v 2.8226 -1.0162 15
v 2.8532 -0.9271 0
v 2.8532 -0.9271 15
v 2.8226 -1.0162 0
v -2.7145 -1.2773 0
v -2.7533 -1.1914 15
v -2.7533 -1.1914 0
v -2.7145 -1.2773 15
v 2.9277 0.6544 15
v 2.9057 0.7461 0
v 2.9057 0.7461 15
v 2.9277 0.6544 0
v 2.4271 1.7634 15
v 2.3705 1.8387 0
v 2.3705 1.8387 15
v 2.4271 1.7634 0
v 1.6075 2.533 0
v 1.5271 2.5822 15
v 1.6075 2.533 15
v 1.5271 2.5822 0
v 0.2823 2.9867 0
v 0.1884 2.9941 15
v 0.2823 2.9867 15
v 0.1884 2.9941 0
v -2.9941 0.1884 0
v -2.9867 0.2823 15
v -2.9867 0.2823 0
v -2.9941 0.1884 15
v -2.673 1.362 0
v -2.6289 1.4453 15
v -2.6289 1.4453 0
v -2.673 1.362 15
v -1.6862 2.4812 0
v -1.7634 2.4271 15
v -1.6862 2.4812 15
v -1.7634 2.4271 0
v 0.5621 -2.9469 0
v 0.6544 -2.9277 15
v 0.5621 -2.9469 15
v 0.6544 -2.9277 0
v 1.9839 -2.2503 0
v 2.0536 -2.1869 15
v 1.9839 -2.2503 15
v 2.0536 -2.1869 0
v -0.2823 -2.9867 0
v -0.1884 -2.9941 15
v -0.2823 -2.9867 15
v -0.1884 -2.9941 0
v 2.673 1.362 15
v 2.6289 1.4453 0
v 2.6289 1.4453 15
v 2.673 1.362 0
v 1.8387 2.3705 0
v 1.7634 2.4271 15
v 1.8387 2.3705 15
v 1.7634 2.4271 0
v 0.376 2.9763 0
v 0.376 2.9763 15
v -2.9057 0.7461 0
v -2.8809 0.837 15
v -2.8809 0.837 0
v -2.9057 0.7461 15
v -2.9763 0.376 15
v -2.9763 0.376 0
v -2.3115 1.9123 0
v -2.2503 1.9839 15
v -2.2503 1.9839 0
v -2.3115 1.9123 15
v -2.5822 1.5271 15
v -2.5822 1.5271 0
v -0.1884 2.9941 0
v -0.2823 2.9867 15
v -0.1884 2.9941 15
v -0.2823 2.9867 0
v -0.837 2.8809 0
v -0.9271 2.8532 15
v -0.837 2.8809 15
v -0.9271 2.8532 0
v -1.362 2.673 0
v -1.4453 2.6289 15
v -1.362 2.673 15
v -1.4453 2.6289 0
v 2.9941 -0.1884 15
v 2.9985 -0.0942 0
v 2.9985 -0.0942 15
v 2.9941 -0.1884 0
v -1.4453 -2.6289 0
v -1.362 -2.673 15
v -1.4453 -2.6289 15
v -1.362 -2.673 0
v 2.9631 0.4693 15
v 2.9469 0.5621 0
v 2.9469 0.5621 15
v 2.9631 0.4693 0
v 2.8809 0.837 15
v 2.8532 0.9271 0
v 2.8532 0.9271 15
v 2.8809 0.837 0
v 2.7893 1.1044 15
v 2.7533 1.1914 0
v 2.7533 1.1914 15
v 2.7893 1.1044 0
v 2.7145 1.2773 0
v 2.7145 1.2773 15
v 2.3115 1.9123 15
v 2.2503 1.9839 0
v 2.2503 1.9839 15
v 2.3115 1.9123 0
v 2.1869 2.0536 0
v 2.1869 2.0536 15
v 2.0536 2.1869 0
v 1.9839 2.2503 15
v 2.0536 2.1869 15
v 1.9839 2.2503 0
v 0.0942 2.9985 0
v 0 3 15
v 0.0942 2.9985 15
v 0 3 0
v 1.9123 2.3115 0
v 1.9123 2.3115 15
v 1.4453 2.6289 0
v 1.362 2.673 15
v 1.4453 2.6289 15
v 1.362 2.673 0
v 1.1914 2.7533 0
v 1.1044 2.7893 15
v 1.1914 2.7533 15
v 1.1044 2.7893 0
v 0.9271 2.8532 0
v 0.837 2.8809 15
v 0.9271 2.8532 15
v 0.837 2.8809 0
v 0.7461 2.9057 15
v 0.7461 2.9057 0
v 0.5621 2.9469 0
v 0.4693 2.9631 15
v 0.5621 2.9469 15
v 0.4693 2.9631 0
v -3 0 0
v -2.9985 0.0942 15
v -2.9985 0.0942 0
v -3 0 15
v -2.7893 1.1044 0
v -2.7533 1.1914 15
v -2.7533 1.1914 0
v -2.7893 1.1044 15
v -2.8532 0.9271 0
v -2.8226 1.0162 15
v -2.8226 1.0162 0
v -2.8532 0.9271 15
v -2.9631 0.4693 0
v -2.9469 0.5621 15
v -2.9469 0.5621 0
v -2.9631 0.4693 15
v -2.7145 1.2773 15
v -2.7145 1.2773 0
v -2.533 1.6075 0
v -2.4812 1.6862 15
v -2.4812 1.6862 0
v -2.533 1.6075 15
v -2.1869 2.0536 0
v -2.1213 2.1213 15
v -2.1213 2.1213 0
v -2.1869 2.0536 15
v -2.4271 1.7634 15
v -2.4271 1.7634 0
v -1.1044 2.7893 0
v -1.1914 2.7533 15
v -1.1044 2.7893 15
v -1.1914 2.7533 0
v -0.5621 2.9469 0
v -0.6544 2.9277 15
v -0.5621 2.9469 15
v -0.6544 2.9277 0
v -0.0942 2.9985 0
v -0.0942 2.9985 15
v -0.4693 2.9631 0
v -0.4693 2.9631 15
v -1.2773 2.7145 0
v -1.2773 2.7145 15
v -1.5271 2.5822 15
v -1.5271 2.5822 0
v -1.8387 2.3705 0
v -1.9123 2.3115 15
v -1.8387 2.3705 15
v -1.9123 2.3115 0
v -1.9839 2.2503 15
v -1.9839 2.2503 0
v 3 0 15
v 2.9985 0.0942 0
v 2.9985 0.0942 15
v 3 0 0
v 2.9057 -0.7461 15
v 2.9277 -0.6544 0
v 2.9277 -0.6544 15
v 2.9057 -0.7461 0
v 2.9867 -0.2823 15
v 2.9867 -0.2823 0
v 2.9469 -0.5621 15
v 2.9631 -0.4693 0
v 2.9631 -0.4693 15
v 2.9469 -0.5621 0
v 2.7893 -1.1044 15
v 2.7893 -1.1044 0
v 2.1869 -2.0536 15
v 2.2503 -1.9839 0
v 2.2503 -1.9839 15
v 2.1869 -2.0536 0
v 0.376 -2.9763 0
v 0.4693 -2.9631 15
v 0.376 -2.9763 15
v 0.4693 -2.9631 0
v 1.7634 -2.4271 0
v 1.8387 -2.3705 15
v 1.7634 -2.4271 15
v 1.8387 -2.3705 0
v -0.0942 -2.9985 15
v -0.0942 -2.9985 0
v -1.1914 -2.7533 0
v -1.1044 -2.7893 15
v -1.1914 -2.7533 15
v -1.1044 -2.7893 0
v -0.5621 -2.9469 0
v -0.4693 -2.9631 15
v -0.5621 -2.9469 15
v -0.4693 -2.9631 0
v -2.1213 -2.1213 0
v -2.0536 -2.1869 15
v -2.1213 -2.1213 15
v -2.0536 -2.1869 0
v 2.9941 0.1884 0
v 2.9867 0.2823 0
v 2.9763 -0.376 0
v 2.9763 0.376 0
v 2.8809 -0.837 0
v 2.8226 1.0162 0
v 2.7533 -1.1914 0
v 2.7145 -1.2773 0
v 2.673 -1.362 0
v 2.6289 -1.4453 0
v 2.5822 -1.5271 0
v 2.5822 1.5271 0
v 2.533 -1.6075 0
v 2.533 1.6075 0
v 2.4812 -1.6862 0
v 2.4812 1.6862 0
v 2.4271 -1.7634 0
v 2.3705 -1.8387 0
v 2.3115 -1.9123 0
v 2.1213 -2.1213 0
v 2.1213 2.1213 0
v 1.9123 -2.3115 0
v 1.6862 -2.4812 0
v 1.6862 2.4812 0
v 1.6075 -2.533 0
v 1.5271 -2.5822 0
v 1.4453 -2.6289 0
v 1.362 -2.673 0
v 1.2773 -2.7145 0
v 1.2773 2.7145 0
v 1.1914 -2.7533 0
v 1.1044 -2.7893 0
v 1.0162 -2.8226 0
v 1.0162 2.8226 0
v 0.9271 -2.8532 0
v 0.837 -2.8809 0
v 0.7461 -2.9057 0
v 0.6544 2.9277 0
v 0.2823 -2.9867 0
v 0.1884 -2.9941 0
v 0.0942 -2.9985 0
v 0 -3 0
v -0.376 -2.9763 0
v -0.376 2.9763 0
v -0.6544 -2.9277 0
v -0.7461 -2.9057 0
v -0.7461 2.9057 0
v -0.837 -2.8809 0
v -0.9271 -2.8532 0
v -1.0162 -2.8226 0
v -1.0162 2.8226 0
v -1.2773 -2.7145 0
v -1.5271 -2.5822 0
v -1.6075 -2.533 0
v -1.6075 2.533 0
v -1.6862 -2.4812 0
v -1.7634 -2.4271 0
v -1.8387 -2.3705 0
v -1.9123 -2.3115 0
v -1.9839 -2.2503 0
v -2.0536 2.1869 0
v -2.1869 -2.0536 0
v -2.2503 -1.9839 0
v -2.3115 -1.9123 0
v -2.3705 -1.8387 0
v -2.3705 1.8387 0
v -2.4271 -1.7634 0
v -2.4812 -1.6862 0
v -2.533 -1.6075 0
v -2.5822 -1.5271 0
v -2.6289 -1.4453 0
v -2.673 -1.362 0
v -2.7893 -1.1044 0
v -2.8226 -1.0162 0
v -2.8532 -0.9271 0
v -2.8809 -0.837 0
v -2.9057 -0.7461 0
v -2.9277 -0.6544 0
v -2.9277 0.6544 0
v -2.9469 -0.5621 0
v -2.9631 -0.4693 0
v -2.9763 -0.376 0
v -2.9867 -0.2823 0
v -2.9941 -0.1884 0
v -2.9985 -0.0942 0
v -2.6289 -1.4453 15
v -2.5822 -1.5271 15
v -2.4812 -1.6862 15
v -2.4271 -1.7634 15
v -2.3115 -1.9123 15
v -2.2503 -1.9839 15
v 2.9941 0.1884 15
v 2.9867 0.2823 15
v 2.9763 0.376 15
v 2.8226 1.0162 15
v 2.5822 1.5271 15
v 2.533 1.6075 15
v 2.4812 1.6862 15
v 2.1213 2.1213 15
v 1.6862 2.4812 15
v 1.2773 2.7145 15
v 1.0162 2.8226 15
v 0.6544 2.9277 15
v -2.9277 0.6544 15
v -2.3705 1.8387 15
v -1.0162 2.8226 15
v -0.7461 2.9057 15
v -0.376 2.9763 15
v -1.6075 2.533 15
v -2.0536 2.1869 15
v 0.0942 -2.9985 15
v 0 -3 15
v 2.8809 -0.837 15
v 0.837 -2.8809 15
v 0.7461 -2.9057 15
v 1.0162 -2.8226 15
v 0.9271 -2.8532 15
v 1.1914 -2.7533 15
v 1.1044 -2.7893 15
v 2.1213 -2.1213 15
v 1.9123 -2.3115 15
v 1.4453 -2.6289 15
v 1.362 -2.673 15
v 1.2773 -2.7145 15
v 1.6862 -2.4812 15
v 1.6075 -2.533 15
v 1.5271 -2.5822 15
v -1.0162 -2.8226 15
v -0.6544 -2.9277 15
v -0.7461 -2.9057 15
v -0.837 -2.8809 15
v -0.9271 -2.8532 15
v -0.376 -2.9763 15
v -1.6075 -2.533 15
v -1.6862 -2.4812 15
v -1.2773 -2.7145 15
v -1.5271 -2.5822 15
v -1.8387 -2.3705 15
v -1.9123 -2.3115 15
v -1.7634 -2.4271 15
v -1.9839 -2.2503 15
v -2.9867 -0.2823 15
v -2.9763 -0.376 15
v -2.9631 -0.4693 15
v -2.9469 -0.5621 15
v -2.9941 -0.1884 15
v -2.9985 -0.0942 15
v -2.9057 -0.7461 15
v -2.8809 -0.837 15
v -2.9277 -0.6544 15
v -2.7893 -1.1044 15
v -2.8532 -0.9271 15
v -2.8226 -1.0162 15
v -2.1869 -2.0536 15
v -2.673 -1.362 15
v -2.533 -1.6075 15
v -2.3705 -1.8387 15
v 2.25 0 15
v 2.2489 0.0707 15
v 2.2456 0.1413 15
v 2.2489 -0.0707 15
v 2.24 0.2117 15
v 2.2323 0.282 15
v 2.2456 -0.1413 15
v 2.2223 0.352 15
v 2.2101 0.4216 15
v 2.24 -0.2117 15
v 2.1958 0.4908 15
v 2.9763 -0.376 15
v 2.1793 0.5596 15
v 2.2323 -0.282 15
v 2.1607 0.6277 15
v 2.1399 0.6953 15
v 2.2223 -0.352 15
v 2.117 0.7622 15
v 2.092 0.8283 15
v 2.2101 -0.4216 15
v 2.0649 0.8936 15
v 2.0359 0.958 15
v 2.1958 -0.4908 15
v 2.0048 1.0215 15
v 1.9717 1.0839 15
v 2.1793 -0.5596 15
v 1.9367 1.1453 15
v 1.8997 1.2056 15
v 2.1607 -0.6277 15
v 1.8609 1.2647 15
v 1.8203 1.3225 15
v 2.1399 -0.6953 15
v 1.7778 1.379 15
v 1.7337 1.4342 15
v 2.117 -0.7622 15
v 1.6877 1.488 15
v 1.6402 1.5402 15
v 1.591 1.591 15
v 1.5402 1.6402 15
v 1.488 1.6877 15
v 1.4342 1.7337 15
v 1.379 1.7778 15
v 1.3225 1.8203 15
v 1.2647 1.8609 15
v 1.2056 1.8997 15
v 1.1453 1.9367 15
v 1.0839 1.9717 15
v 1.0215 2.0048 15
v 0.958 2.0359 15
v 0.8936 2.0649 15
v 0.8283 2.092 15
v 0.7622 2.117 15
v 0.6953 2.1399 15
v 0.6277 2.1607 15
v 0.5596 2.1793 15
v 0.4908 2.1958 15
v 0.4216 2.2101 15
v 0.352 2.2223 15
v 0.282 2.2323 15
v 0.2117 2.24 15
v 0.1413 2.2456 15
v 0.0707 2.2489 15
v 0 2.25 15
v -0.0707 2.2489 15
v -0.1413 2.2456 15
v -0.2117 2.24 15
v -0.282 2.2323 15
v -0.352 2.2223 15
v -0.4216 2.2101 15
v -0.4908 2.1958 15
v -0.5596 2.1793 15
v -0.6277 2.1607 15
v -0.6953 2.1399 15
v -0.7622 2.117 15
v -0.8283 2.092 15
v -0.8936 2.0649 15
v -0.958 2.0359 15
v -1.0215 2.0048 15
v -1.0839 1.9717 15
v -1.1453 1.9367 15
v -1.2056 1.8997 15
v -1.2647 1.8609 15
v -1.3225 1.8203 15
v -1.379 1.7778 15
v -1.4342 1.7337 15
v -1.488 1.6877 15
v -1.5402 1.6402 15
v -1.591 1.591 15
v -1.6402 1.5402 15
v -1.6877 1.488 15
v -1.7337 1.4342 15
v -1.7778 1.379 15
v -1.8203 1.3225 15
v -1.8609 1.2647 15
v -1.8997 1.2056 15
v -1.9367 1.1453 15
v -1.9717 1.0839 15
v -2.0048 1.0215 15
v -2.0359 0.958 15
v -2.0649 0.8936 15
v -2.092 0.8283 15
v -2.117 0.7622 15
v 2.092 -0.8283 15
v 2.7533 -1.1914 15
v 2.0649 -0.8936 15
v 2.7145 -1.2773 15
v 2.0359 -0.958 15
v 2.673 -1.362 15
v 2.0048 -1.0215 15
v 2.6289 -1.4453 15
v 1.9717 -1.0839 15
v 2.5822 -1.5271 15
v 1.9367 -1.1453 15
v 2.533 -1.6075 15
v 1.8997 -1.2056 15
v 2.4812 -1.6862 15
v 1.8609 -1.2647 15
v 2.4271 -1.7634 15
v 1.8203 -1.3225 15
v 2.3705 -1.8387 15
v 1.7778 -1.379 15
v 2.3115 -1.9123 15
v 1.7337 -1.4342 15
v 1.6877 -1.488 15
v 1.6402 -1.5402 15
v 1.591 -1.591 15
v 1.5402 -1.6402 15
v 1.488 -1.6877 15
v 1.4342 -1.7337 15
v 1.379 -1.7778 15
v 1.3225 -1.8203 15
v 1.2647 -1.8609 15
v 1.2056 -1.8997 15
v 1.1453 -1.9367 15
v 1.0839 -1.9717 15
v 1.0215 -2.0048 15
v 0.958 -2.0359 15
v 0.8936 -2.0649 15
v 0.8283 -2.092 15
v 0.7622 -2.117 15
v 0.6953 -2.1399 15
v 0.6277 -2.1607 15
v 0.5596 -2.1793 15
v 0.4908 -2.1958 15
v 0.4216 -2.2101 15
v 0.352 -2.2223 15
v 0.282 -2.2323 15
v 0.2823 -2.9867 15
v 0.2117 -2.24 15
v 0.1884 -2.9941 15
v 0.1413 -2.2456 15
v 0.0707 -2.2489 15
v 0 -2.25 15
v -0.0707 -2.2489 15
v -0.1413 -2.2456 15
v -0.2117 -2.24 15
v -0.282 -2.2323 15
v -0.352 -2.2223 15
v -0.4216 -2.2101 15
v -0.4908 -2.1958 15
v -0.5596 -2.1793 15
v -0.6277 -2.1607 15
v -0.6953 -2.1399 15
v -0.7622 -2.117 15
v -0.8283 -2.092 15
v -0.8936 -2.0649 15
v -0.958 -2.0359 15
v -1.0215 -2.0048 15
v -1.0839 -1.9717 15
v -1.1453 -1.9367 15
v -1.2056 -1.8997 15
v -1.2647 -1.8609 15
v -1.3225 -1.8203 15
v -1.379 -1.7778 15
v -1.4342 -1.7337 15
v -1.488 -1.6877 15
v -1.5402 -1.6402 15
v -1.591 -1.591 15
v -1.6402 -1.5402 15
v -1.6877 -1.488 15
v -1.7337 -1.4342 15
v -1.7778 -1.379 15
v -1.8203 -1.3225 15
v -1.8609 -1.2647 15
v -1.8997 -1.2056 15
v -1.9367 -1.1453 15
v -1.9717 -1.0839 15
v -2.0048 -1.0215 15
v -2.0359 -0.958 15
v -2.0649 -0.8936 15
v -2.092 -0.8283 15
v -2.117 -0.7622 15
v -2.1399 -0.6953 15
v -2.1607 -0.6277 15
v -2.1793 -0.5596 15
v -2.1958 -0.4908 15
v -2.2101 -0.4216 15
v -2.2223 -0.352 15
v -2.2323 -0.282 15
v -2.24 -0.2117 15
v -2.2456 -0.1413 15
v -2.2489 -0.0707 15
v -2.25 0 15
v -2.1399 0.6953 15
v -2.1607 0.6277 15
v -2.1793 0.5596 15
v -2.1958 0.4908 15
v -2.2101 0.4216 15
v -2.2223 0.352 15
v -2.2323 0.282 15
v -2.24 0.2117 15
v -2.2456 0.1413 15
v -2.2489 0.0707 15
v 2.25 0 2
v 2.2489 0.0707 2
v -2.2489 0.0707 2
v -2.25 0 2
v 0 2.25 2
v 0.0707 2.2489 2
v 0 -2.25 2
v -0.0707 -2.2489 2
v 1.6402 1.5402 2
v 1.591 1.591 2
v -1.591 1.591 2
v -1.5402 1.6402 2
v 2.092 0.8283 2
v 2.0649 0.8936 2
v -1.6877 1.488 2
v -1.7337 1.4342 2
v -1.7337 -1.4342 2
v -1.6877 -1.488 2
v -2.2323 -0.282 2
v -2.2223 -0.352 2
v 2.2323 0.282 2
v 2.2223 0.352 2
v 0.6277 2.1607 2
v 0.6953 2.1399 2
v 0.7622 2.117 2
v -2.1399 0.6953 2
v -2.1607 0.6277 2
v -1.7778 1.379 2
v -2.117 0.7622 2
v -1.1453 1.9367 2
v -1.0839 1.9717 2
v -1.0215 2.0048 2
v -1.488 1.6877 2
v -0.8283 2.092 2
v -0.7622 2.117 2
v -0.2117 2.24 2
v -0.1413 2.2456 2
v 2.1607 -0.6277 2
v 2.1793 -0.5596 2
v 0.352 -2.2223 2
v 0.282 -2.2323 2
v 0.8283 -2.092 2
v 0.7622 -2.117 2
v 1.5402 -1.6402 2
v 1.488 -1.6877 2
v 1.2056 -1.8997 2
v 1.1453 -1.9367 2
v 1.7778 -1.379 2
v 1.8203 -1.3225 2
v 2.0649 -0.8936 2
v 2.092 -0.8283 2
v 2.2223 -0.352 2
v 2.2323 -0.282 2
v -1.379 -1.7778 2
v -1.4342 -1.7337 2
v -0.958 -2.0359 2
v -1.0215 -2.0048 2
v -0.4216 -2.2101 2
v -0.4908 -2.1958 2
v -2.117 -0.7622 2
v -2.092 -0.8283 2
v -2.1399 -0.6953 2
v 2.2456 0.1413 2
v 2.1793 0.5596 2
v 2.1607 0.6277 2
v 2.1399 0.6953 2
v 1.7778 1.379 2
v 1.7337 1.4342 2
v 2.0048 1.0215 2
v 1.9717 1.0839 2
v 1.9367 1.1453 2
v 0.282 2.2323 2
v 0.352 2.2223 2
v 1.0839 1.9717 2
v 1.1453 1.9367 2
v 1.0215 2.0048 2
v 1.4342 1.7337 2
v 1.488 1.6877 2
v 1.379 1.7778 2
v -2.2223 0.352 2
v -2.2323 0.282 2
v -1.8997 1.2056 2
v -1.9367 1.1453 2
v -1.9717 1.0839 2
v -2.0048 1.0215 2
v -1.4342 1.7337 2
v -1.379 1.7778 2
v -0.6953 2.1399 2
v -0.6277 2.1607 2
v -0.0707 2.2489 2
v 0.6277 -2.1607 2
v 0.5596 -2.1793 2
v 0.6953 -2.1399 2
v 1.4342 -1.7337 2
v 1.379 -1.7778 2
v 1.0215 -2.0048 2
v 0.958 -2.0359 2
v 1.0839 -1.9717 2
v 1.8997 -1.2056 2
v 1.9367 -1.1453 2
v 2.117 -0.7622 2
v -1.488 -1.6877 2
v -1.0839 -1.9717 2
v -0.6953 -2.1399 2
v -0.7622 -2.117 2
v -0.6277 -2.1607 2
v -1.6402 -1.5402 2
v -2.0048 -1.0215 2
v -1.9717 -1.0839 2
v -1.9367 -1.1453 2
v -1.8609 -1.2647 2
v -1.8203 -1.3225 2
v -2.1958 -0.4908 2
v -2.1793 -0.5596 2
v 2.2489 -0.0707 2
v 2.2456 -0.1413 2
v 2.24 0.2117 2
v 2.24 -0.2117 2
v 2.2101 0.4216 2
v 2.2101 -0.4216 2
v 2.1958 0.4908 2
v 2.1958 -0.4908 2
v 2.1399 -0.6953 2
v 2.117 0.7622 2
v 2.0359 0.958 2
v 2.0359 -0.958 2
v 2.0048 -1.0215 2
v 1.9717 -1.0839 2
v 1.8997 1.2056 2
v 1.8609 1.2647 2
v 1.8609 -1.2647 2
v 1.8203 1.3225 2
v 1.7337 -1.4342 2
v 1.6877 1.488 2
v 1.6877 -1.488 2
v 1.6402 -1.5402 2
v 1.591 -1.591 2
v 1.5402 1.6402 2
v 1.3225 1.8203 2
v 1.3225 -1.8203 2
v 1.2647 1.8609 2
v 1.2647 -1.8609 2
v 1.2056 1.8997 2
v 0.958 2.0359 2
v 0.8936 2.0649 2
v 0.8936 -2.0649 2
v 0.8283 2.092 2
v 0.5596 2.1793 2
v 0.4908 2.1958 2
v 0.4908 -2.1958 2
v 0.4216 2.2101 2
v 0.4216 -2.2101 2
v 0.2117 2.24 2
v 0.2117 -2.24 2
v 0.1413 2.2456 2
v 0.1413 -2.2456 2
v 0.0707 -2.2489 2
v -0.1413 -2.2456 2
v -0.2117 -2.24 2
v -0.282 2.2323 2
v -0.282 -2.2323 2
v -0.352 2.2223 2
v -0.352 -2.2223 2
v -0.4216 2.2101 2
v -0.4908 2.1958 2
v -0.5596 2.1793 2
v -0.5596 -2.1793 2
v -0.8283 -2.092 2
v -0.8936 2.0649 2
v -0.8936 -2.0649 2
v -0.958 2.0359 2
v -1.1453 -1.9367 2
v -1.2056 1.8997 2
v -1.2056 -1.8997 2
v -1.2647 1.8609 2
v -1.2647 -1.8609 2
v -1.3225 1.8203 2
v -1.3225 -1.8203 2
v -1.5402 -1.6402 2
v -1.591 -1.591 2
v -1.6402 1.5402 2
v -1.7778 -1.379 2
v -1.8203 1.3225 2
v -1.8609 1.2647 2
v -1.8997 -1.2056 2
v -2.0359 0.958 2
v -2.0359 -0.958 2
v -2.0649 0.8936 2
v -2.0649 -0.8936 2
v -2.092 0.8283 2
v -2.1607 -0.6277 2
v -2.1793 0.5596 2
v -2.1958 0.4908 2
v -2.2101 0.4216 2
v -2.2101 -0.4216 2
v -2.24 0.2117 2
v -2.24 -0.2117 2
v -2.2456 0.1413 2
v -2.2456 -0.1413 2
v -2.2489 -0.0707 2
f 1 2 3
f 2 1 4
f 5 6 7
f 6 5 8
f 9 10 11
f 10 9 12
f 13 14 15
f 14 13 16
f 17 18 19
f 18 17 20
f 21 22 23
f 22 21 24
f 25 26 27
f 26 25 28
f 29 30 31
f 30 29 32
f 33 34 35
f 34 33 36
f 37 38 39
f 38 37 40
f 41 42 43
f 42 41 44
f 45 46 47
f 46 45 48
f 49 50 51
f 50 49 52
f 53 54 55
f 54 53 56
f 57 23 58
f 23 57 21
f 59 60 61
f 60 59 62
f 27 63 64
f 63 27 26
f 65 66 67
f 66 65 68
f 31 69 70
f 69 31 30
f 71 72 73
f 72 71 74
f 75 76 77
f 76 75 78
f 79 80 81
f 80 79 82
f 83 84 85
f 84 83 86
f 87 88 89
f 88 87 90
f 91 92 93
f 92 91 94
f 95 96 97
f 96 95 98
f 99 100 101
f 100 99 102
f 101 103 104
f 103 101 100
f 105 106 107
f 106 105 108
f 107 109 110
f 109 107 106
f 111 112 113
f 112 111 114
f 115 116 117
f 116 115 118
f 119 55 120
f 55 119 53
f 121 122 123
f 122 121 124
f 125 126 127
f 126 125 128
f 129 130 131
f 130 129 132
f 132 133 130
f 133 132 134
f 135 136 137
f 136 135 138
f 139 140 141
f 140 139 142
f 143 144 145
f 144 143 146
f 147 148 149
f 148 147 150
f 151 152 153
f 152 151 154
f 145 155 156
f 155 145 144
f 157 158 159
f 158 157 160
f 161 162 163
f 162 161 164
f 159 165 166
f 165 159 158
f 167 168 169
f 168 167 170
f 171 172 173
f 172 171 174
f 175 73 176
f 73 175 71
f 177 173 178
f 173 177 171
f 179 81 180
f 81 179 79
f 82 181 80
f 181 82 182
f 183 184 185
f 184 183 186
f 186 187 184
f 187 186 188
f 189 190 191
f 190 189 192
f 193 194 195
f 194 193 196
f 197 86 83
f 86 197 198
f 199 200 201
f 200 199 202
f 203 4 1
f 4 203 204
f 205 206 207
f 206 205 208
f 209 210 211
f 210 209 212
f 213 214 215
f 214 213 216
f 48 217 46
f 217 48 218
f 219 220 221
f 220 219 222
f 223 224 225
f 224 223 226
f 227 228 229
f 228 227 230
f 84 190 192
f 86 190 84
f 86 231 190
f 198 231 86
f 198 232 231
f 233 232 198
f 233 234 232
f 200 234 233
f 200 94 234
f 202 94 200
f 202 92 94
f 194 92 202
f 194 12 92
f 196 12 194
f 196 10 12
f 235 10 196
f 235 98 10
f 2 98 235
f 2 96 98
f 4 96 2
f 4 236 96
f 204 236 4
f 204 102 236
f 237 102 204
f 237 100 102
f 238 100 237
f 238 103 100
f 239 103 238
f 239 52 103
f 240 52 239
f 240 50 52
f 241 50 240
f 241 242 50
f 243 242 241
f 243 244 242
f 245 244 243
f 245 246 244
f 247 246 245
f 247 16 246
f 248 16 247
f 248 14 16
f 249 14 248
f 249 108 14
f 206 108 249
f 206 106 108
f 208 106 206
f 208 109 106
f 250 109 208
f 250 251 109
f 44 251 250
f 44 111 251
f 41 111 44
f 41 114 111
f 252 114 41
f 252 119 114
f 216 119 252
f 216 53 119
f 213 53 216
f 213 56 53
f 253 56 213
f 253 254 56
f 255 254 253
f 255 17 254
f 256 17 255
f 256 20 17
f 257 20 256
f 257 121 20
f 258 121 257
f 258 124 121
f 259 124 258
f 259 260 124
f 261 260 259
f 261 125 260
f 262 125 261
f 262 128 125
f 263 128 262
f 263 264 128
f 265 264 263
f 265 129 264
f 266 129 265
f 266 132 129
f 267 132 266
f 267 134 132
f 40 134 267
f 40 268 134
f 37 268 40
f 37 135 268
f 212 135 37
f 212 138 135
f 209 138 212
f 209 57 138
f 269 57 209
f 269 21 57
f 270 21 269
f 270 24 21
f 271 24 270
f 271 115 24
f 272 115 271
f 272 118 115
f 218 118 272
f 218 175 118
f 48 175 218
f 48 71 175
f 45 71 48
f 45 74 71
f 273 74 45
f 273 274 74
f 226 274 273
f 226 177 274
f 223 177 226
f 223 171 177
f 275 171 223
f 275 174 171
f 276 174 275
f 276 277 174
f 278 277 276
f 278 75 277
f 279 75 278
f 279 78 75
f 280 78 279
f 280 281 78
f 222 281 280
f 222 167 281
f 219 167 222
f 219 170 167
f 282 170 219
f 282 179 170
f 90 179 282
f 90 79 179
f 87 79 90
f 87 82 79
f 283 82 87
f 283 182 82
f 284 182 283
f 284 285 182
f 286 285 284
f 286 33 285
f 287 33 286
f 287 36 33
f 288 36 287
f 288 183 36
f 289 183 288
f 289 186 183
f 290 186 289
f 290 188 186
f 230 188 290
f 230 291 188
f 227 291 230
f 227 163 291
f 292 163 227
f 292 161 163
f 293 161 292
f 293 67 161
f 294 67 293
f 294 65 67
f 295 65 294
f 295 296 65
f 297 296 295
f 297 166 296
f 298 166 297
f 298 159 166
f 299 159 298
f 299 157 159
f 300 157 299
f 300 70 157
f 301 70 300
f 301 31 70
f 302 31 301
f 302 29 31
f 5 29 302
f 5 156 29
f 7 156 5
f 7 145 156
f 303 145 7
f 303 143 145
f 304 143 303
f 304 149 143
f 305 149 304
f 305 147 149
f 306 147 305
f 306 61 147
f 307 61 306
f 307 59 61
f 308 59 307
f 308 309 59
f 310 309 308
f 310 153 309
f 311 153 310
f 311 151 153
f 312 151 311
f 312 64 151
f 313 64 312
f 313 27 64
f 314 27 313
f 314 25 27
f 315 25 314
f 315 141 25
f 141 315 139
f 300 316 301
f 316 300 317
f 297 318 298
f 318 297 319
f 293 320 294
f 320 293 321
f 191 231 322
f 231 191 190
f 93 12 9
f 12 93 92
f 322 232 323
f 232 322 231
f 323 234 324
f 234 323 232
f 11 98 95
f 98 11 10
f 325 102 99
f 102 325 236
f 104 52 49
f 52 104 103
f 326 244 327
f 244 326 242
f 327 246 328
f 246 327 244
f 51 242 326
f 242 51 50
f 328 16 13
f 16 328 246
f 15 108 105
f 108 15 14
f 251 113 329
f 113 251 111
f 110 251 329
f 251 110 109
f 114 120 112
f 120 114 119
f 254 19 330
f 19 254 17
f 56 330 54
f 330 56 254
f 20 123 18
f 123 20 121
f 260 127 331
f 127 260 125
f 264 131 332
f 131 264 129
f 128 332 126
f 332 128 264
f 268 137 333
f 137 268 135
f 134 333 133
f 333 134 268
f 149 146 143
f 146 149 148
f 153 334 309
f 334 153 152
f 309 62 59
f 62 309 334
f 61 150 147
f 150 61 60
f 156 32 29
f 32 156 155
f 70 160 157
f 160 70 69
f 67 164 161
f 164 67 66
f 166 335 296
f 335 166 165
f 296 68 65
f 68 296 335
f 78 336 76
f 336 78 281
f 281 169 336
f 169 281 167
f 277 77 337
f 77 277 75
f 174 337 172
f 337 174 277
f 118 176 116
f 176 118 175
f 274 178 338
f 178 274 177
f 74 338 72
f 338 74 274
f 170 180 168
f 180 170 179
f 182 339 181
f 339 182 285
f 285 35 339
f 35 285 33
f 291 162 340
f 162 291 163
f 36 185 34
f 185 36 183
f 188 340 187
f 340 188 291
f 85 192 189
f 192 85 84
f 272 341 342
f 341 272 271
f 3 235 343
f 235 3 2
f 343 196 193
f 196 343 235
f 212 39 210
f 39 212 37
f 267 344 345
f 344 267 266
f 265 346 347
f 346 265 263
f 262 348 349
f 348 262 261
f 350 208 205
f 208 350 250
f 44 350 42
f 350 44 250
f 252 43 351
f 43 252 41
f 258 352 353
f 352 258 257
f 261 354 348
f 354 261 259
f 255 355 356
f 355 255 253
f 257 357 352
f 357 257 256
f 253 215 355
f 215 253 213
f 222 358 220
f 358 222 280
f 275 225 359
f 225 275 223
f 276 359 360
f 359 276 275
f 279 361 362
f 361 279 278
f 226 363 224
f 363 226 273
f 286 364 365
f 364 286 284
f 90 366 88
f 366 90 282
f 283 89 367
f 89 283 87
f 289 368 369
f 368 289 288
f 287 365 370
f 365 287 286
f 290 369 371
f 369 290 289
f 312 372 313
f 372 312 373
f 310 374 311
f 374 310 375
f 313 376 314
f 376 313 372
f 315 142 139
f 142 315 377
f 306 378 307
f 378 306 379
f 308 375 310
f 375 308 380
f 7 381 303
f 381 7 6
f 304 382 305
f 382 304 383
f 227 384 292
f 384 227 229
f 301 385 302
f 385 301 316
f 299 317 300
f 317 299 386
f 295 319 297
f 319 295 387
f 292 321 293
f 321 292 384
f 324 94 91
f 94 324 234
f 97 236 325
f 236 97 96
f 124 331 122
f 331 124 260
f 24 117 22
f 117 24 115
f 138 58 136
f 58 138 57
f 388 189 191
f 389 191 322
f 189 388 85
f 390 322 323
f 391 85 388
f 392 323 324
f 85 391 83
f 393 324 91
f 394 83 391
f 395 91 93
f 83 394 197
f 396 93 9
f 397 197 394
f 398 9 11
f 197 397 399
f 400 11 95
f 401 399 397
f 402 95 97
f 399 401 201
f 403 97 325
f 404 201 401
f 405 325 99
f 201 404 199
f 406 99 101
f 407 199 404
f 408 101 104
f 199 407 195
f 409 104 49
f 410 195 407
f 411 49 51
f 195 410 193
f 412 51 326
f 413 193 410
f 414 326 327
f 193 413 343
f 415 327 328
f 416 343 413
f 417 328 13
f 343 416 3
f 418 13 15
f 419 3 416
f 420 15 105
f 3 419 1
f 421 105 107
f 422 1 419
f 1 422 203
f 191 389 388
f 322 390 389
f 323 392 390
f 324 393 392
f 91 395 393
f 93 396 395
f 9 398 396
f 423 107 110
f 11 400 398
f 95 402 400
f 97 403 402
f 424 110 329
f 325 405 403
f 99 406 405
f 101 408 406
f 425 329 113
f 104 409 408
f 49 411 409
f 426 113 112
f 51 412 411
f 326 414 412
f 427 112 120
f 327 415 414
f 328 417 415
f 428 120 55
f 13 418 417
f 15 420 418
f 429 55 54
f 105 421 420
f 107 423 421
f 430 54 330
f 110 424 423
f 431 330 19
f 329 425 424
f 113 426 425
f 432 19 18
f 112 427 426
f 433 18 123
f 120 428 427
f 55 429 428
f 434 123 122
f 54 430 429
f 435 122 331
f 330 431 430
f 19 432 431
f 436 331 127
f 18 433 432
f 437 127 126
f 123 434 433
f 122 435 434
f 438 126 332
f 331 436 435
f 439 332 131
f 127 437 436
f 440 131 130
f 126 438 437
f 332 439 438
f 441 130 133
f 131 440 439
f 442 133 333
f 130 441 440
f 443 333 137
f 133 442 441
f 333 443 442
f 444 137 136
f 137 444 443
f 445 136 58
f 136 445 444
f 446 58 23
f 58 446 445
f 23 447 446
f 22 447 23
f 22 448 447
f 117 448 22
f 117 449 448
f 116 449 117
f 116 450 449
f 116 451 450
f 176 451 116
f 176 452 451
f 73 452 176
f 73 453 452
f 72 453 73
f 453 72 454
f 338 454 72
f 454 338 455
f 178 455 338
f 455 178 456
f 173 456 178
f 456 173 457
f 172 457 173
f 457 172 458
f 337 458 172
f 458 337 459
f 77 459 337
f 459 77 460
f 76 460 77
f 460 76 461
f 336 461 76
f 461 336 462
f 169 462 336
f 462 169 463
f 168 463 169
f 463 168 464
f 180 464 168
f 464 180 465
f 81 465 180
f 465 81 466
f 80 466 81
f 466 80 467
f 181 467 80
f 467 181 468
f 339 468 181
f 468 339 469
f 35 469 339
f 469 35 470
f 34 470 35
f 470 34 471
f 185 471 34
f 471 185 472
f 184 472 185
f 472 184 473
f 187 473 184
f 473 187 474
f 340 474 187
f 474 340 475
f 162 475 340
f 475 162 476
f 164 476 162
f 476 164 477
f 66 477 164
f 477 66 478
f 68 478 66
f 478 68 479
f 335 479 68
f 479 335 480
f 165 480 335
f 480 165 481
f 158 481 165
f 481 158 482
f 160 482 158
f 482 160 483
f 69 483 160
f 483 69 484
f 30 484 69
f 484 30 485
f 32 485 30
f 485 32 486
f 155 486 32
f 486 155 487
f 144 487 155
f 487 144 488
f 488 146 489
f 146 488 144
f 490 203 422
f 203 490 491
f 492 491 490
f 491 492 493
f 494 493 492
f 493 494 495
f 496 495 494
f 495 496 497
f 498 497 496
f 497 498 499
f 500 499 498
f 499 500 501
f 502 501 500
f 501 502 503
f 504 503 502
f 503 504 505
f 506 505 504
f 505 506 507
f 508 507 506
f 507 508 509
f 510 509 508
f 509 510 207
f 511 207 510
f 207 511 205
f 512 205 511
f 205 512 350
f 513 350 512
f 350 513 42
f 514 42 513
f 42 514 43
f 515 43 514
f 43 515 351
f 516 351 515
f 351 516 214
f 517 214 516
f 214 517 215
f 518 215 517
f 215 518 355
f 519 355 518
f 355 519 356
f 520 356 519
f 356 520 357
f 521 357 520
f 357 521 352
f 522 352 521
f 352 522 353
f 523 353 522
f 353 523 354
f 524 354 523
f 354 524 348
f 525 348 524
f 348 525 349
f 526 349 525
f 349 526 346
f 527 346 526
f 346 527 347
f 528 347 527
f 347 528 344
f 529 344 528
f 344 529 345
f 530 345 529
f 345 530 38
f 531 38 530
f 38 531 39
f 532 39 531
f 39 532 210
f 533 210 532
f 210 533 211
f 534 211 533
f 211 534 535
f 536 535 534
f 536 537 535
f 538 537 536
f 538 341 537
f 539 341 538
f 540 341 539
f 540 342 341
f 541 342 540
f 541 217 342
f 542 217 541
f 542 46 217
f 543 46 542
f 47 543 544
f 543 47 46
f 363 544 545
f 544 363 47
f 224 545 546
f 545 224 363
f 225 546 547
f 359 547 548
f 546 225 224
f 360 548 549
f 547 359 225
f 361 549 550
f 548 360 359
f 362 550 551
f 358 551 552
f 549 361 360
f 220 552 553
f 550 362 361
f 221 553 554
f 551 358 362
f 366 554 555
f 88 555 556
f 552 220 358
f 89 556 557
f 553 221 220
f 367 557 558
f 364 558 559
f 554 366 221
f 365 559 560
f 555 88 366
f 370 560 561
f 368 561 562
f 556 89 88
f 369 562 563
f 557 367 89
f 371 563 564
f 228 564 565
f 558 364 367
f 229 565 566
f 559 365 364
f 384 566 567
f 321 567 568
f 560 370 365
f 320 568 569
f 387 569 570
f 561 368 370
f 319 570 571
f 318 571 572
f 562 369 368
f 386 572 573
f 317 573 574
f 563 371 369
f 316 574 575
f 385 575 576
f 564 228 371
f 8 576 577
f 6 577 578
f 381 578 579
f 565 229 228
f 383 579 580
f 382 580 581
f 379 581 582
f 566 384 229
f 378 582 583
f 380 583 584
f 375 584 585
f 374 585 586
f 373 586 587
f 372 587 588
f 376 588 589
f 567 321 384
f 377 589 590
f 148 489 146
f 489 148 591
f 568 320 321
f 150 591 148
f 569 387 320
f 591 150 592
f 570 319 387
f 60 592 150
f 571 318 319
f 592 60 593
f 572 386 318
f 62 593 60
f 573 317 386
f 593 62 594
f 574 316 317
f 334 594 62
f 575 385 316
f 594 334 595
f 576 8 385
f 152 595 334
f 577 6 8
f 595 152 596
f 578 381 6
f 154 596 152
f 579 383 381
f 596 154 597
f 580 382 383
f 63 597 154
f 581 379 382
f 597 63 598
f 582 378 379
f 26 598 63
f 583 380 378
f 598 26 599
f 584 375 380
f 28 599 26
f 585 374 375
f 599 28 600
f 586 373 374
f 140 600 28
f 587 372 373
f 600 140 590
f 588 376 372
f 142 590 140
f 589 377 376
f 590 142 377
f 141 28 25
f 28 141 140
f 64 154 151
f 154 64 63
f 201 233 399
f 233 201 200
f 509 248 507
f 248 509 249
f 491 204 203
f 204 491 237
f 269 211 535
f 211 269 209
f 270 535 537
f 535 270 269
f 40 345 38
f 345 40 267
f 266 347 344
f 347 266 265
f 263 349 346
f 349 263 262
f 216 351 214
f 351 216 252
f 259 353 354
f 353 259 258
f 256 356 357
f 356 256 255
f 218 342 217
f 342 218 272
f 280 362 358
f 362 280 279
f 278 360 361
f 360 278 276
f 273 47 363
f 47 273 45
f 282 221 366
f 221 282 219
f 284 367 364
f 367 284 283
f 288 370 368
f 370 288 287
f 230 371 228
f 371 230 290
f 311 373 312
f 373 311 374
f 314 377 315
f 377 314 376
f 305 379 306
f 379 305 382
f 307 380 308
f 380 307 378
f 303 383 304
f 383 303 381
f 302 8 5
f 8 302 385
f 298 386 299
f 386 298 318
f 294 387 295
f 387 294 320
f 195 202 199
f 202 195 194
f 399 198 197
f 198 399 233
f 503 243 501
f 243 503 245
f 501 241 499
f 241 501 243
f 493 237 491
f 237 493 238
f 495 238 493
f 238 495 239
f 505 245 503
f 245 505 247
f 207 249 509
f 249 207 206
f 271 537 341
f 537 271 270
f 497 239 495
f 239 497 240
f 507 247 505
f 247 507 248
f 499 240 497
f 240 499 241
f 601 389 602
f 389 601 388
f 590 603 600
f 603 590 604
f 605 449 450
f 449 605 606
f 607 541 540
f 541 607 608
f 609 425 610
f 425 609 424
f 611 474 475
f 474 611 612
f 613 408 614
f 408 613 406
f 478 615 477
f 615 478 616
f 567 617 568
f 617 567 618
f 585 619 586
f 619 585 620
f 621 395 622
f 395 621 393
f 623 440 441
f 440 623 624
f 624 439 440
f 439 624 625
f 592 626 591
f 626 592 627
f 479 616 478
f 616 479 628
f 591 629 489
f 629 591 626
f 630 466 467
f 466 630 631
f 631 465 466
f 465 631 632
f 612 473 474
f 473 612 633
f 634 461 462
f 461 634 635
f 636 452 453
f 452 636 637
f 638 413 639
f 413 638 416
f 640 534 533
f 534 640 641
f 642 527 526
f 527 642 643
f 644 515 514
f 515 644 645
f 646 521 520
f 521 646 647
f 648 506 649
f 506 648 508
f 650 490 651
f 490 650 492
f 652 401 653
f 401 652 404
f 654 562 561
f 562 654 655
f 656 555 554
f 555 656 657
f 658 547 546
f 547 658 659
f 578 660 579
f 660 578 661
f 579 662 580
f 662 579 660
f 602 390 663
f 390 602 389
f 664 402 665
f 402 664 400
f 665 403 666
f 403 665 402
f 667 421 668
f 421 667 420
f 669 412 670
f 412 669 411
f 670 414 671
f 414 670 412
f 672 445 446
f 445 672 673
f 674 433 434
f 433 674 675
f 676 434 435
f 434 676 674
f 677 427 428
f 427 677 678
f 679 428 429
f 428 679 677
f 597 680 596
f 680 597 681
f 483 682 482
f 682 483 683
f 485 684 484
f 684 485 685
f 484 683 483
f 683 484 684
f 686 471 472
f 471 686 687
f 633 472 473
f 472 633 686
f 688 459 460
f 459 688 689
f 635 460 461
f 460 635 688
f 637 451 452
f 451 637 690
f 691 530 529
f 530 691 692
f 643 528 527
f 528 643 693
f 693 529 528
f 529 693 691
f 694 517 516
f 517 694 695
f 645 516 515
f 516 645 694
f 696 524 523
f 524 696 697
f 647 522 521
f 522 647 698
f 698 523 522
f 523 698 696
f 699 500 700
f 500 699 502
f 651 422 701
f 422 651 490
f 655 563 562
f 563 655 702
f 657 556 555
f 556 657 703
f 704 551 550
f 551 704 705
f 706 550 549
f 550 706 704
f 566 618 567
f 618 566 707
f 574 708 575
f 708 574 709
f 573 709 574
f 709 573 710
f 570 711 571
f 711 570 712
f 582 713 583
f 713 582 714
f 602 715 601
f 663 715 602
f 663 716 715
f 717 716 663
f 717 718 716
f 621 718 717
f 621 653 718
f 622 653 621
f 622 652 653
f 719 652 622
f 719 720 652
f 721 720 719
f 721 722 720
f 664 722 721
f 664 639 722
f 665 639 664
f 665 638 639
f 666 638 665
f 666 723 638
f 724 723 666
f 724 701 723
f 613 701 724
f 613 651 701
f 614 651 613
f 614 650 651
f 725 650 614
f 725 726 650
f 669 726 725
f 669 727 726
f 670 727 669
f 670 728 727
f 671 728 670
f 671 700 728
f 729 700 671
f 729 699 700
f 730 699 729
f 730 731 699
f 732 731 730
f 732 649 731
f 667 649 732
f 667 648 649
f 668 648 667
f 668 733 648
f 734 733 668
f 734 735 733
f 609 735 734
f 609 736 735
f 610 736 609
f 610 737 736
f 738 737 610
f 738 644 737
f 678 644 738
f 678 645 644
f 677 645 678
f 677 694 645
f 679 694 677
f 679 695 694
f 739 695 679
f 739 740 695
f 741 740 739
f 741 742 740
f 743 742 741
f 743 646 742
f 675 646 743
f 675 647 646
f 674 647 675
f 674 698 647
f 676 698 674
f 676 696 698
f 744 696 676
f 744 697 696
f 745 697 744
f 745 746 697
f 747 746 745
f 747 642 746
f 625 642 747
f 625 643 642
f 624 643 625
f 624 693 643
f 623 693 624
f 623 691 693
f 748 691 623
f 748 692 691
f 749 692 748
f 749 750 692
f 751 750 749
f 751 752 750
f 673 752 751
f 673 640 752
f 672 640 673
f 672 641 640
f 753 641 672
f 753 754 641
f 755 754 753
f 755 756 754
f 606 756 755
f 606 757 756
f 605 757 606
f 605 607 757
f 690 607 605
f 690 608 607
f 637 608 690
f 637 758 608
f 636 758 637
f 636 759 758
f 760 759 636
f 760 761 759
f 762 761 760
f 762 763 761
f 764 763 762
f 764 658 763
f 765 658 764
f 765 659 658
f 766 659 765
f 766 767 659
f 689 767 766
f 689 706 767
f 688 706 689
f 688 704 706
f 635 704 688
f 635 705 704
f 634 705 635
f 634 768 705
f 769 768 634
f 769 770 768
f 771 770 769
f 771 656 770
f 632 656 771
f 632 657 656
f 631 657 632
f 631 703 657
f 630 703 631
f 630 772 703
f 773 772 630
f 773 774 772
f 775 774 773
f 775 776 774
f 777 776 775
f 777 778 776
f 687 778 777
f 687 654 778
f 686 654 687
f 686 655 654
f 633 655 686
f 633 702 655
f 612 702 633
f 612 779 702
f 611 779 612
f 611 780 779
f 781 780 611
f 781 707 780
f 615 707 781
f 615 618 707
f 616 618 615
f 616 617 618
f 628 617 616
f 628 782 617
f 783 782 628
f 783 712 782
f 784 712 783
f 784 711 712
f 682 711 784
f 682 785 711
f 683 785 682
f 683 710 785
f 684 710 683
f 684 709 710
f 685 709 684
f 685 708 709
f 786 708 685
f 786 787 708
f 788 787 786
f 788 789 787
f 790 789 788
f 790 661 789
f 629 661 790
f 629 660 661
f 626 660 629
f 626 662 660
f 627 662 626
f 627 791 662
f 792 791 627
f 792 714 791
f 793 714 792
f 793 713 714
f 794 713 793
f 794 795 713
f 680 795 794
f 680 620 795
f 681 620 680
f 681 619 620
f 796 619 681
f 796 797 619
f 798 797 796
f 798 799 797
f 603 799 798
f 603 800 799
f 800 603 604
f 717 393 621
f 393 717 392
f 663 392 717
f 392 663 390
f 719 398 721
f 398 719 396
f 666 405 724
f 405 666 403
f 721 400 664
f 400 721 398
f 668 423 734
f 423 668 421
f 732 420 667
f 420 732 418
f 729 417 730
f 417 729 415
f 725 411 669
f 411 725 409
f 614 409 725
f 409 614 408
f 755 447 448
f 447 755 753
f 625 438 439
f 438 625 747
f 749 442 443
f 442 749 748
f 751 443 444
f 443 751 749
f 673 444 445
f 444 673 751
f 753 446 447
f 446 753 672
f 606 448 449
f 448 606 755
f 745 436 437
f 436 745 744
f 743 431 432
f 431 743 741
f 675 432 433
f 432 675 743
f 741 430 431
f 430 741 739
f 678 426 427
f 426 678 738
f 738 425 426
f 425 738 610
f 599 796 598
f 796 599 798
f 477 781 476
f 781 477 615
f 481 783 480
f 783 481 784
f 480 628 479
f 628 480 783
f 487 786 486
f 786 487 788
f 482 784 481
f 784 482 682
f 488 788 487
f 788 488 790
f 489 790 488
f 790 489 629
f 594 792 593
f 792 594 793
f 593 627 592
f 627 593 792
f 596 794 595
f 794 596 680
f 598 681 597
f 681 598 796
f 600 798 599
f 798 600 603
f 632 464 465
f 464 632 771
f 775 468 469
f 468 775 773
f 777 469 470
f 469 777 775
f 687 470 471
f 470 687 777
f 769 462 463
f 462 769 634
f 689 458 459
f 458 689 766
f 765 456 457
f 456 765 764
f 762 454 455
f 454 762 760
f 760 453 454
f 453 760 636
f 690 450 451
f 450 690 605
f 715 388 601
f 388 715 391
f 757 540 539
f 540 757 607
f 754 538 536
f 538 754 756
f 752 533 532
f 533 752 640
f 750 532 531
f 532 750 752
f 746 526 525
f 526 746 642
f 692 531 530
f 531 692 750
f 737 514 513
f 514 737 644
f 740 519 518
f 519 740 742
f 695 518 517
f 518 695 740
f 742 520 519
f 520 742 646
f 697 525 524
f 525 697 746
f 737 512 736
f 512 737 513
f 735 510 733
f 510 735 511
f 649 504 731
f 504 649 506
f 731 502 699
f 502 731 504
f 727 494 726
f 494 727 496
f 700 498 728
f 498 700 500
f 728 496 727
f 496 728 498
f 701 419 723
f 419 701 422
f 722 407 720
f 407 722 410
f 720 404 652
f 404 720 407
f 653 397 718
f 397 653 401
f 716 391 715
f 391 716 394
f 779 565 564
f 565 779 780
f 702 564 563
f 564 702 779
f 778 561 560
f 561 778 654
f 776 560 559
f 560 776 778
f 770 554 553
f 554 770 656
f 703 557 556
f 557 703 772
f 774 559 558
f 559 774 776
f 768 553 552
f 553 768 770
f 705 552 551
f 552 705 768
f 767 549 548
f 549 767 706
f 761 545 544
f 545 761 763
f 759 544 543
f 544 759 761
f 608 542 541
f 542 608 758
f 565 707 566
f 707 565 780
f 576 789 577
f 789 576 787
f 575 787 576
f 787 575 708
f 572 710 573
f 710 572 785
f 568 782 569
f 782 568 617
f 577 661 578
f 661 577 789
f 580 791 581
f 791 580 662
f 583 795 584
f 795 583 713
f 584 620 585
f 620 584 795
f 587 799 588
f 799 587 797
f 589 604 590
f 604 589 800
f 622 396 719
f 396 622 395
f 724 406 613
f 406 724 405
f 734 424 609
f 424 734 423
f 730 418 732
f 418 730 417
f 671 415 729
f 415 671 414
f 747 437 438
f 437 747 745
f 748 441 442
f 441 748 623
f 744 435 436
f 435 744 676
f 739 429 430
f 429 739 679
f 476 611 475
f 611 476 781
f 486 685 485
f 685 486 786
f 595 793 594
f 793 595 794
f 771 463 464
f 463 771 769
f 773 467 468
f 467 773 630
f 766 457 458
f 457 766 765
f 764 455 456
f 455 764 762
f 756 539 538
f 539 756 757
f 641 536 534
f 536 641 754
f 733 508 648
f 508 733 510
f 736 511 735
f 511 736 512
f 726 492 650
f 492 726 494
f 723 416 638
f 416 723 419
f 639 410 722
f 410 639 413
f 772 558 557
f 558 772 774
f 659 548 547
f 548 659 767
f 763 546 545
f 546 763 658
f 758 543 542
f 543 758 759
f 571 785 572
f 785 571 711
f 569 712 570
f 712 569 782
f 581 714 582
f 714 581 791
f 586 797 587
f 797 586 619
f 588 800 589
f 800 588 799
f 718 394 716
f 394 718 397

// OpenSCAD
$fn = 200;//количество полигонов

height = 15;
ext_diameter = 6;
int_diameter = 4.5;


    difference()
    {
        cylinder(h = height, d = ext_diameter);
        translate([0,0,2])
            cylinder(h = height, d = int_diameter);
    }
    
        
